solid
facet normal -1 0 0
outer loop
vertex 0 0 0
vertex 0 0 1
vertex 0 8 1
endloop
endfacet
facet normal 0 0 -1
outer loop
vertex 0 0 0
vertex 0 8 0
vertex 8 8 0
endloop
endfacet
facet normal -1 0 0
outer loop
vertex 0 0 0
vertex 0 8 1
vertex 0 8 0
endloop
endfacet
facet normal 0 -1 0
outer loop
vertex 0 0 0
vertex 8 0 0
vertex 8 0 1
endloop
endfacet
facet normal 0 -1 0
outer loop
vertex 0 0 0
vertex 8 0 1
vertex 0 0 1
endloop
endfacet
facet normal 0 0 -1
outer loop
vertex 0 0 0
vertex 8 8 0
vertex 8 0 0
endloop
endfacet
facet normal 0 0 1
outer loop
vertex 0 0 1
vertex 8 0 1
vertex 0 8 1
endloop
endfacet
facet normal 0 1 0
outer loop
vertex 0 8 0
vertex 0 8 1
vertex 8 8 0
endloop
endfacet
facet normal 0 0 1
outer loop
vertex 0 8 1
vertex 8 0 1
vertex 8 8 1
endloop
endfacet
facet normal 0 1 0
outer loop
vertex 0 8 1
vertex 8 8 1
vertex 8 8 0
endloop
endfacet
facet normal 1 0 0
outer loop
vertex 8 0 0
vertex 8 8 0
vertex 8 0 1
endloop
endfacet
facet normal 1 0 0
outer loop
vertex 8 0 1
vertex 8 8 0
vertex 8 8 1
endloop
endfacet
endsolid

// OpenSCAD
/* Warning, this is a very basic generator with a lot of approximation 
input data : [VDFN, G4C, 8x8x1.0mm, 56, , B, C04-25640B]
generated by com.zoubworld.electronics.cad.model3d.Basic
Date : Sun Feb 15 10:50:49 CET 2026
*/

//body
color("black")
translate([0,0,0])
cube([8.0,8.0,1.0], center=false);
